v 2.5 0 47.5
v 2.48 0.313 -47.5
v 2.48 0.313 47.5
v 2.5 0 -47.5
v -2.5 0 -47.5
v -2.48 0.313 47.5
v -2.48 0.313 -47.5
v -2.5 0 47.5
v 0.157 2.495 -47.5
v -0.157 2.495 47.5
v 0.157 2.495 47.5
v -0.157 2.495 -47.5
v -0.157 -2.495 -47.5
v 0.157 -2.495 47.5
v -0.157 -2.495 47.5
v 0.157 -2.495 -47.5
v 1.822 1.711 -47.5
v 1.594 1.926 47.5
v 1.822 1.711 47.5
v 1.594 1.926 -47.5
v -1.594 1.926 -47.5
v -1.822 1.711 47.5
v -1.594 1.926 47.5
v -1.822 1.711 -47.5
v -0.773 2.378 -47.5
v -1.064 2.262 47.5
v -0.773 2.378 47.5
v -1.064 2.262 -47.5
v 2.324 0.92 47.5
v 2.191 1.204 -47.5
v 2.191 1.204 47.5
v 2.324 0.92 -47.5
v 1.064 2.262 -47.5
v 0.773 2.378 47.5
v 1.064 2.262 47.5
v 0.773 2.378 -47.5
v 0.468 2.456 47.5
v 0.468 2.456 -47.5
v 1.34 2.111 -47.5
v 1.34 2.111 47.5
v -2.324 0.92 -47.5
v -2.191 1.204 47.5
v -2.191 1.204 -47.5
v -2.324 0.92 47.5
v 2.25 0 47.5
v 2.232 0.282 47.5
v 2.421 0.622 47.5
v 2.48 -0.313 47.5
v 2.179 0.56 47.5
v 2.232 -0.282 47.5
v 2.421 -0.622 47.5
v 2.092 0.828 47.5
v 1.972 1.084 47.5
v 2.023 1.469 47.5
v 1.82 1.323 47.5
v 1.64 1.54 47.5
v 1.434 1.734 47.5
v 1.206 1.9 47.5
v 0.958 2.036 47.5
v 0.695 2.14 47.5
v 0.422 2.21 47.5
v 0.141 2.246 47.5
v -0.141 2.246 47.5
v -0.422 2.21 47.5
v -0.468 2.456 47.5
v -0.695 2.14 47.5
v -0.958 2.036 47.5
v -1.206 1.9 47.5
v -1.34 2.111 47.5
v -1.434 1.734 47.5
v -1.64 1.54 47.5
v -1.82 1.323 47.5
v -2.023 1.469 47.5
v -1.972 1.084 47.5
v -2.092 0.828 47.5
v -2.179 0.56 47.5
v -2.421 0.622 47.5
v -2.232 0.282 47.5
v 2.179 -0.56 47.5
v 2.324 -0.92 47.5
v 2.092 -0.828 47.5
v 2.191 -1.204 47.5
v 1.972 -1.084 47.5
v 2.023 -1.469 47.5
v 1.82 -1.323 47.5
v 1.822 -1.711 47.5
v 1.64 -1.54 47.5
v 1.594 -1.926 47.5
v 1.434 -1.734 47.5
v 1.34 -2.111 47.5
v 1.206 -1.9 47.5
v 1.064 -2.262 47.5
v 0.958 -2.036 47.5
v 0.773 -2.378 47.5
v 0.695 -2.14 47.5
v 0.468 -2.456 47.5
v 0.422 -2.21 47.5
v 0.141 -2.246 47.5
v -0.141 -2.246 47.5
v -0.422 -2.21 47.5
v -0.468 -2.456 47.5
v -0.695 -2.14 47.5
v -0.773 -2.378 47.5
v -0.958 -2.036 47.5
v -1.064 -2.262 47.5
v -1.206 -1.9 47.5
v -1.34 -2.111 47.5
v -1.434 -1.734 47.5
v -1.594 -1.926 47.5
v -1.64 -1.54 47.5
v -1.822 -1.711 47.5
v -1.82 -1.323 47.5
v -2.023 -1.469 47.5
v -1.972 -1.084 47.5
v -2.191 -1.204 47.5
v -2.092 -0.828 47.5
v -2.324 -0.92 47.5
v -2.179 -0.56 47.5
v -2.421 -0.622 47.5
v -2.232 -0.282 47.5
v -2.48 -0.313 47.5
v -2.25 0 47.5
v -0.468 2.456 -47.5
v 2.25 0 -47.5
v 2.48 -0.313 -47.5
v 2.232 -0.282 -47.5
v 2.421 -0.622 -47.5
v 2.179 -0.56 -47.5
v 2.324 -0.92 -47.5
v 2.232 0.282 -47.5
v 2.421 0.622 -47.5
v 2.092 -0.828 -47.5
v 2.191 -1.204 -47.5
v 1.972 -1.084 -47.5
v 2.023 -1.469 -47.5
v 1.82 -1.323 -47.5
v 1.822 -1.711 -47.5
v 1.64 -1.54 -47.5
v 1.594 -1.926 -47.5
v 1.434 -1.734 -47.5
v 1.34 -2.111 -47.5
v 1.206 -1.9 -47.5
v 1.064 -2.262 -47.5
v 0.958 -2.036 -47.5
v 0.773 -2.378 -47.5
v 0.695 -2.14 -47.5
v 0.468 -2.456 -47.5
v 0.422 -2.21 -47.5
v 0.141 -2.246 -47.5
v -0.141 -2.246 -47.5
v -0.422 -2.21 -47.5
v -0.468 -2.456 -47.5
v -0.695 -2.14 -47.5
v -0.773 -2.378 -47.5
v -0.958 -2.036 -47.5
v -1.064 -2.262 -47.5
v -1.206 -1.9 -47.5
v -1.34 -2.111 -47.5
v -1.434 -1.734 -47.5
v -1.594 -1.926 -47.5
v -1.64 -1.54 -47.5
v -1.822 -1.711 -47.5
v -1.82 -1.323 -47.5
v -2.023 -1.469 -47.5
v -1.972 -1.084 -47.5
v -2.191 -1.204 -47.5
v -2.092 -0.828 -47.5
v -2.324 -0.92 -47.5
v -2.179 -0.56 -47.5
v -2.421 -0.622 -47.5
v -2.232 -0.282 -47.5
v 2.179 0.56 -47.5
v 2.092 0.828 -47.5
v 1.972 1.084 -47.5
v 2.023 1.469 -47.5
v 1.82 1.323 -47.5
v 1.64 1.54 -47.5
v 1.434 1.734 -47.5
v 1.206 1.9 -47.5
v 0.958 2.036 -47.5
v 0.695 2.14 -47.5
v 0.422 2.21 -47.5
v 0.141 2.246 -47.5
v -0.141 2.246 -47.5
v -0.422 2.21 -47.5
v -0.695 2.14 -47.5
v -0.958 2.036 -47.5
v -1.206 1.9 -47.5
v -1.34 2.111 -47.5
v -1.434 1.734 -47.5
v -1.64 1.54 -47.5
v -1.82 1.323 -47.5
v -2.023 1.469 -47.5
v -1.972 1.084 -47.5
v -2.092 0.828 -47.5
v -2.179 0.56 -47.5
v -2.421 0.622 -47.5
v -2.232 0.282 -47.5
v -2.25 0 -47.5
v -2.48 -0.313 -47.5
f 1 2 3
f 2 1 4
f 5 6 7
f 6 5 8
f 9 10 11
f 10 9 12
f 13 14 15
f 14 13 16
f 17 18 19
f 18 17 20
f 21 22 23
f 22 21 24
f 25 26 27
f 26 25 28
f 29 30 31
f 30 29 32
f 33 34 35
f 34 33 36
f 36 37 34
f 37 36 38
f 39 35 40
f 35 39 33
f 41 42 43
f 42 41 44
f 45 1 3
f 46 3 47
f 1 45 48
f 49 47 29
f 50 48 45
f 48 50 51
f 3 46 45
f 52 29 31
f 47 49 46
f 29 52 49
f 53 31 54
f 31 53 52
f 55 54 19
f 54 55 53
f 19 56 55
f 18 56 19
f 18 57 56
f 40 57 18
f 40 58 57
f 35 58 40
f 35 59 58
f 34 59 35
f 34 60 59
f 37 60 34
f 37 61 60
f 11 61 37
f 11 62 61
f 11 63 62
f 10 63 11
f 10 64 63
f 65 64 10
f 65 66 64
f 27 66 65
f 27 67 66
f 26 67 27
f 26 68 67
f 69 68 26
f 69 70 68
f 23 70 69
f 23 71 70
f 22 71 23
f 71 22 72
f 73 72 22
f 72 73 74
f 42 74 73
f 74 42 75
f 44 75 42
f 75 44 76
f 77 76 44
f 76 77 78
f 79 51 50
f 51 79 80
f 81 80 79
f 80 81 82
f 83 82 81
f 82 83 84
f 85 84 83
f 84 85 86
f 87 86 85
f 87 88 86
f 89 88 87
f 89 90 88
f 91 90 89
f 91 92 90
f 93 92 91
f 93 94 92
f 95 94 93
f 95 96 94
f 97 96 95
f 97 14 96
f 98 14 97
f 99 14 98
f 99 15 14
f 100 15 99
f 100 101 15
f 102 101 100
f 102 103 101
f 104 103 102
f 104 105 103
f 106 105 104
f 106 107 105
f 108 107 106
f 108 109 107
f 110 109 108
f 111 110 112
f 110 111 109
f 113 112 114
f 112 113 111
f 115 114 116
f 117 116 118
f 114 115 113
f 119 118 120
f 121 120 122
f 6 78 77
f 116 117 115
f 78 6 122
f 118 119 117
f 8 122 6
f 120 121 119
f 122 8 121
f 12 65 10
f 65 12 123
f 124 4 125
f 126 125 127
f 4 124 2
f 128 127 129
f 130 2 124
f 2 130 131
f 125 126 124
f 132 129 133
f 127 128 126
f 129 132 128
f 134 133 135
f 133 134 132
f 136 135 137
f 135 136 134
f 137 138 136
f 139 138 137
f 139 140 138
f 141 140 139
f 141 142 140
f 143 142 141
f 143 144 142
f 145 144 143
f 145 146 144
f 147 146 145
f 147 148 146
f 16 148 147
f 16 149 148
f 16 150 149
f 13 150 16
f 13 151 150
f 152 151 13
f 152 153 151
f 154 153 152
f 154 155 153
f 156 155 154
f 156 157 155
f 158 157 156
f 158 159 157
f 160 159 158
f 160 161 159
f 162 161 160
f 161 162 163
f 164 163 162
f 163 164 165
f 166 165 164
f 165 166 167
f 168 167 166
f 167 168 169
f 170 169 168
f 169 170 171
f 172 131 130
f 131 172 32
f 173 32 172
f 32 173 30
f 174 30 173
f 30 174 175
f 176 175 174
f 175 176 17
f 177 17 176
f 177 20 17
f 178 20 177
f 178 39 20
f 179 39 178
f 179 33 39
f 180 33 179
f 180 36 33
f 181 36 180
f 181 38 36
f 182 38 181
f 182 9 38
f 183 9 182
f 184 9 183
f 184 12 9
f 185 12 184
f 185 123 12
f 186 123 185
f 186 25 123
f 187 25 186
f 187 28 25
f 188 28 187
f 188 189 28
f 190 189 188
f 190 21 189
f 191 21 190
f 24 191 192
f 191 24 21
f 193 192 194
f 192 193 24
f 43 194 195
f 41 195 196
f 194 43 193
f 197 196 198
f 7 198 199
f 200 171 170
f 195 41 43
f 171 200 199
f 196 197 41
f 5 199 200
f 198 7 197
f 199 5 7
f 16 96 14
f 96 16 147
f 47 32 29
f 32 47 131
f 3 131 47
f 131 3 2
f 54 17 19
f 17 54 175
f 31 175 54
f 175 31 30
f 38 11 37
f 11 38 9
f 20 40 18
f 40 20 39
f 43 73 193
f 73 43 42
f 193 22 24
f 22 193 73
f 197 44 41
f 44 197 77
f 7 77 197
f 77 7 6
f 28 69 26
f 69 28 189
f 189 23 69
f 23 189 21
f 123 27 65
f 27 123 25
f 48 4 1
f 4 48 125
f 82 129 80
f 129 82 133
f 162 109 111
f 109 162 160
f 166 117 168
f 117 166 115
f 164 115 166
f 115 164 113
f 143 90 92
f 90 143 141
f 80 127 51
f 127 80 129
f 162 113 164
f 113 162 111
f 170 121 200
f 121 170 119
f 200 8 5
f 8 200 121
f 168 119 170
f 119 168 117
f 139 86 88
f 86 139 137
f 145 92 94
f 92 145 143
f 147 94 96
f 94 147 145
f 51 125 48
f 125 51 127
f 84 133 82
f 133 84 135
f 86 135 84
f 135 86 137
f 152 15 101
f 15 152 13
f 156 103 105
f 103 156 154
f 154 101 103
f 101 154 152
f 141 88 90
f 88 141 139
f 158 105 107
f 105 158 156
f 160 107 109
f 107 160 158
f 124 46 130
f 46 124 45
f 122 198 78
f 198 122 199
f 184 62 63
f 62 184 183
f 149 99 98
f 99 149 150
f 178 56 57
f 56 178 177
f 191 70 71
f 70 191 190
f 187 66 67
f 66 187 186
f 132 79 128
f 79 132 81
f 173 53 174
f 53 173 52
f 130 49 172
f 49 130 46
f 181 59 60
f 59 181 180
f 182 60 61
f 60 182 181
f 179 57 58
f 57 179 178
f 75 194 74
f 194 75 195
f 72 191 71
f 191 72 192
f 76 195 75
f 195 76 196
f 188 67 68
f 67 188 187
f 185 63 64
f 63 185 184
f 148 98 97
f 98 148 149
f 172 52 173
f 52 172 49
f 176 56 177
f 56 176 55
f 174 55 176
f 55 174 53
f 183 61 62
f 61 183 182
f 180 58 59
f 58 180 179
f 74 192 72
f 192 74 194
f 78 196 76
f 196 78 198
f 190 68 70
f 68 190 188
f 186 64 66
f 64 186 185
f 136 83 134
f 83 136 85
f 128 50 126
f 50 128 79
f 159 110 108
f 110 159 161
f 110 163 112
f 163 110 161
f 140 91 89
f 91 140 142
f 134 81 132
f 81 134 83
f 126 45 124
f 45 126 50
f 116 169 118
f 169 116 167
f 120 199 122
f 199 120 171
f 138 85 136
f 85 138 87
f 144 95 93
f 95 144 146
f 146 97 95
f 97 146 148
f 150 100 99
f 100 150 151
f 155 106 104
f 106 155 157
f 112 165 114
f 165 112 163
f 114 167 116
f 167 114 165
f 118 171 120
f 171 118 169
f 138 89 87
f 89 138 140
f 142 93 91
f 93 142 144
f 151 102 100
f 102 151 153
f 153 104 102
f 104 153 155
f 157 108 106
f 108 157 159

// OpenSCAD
$fn = 50;


difference() {
	union() {
		translate(v = [0, 0, -47.5000000000]) {
			cylinder(h = 95, r = 2.5000000000);
		}
	}
	union() {
		translate(v = [0, 0, -100.0000000000]) {
			cylinder(h = 200, r = 2.2500000000);
		}
	}
}
